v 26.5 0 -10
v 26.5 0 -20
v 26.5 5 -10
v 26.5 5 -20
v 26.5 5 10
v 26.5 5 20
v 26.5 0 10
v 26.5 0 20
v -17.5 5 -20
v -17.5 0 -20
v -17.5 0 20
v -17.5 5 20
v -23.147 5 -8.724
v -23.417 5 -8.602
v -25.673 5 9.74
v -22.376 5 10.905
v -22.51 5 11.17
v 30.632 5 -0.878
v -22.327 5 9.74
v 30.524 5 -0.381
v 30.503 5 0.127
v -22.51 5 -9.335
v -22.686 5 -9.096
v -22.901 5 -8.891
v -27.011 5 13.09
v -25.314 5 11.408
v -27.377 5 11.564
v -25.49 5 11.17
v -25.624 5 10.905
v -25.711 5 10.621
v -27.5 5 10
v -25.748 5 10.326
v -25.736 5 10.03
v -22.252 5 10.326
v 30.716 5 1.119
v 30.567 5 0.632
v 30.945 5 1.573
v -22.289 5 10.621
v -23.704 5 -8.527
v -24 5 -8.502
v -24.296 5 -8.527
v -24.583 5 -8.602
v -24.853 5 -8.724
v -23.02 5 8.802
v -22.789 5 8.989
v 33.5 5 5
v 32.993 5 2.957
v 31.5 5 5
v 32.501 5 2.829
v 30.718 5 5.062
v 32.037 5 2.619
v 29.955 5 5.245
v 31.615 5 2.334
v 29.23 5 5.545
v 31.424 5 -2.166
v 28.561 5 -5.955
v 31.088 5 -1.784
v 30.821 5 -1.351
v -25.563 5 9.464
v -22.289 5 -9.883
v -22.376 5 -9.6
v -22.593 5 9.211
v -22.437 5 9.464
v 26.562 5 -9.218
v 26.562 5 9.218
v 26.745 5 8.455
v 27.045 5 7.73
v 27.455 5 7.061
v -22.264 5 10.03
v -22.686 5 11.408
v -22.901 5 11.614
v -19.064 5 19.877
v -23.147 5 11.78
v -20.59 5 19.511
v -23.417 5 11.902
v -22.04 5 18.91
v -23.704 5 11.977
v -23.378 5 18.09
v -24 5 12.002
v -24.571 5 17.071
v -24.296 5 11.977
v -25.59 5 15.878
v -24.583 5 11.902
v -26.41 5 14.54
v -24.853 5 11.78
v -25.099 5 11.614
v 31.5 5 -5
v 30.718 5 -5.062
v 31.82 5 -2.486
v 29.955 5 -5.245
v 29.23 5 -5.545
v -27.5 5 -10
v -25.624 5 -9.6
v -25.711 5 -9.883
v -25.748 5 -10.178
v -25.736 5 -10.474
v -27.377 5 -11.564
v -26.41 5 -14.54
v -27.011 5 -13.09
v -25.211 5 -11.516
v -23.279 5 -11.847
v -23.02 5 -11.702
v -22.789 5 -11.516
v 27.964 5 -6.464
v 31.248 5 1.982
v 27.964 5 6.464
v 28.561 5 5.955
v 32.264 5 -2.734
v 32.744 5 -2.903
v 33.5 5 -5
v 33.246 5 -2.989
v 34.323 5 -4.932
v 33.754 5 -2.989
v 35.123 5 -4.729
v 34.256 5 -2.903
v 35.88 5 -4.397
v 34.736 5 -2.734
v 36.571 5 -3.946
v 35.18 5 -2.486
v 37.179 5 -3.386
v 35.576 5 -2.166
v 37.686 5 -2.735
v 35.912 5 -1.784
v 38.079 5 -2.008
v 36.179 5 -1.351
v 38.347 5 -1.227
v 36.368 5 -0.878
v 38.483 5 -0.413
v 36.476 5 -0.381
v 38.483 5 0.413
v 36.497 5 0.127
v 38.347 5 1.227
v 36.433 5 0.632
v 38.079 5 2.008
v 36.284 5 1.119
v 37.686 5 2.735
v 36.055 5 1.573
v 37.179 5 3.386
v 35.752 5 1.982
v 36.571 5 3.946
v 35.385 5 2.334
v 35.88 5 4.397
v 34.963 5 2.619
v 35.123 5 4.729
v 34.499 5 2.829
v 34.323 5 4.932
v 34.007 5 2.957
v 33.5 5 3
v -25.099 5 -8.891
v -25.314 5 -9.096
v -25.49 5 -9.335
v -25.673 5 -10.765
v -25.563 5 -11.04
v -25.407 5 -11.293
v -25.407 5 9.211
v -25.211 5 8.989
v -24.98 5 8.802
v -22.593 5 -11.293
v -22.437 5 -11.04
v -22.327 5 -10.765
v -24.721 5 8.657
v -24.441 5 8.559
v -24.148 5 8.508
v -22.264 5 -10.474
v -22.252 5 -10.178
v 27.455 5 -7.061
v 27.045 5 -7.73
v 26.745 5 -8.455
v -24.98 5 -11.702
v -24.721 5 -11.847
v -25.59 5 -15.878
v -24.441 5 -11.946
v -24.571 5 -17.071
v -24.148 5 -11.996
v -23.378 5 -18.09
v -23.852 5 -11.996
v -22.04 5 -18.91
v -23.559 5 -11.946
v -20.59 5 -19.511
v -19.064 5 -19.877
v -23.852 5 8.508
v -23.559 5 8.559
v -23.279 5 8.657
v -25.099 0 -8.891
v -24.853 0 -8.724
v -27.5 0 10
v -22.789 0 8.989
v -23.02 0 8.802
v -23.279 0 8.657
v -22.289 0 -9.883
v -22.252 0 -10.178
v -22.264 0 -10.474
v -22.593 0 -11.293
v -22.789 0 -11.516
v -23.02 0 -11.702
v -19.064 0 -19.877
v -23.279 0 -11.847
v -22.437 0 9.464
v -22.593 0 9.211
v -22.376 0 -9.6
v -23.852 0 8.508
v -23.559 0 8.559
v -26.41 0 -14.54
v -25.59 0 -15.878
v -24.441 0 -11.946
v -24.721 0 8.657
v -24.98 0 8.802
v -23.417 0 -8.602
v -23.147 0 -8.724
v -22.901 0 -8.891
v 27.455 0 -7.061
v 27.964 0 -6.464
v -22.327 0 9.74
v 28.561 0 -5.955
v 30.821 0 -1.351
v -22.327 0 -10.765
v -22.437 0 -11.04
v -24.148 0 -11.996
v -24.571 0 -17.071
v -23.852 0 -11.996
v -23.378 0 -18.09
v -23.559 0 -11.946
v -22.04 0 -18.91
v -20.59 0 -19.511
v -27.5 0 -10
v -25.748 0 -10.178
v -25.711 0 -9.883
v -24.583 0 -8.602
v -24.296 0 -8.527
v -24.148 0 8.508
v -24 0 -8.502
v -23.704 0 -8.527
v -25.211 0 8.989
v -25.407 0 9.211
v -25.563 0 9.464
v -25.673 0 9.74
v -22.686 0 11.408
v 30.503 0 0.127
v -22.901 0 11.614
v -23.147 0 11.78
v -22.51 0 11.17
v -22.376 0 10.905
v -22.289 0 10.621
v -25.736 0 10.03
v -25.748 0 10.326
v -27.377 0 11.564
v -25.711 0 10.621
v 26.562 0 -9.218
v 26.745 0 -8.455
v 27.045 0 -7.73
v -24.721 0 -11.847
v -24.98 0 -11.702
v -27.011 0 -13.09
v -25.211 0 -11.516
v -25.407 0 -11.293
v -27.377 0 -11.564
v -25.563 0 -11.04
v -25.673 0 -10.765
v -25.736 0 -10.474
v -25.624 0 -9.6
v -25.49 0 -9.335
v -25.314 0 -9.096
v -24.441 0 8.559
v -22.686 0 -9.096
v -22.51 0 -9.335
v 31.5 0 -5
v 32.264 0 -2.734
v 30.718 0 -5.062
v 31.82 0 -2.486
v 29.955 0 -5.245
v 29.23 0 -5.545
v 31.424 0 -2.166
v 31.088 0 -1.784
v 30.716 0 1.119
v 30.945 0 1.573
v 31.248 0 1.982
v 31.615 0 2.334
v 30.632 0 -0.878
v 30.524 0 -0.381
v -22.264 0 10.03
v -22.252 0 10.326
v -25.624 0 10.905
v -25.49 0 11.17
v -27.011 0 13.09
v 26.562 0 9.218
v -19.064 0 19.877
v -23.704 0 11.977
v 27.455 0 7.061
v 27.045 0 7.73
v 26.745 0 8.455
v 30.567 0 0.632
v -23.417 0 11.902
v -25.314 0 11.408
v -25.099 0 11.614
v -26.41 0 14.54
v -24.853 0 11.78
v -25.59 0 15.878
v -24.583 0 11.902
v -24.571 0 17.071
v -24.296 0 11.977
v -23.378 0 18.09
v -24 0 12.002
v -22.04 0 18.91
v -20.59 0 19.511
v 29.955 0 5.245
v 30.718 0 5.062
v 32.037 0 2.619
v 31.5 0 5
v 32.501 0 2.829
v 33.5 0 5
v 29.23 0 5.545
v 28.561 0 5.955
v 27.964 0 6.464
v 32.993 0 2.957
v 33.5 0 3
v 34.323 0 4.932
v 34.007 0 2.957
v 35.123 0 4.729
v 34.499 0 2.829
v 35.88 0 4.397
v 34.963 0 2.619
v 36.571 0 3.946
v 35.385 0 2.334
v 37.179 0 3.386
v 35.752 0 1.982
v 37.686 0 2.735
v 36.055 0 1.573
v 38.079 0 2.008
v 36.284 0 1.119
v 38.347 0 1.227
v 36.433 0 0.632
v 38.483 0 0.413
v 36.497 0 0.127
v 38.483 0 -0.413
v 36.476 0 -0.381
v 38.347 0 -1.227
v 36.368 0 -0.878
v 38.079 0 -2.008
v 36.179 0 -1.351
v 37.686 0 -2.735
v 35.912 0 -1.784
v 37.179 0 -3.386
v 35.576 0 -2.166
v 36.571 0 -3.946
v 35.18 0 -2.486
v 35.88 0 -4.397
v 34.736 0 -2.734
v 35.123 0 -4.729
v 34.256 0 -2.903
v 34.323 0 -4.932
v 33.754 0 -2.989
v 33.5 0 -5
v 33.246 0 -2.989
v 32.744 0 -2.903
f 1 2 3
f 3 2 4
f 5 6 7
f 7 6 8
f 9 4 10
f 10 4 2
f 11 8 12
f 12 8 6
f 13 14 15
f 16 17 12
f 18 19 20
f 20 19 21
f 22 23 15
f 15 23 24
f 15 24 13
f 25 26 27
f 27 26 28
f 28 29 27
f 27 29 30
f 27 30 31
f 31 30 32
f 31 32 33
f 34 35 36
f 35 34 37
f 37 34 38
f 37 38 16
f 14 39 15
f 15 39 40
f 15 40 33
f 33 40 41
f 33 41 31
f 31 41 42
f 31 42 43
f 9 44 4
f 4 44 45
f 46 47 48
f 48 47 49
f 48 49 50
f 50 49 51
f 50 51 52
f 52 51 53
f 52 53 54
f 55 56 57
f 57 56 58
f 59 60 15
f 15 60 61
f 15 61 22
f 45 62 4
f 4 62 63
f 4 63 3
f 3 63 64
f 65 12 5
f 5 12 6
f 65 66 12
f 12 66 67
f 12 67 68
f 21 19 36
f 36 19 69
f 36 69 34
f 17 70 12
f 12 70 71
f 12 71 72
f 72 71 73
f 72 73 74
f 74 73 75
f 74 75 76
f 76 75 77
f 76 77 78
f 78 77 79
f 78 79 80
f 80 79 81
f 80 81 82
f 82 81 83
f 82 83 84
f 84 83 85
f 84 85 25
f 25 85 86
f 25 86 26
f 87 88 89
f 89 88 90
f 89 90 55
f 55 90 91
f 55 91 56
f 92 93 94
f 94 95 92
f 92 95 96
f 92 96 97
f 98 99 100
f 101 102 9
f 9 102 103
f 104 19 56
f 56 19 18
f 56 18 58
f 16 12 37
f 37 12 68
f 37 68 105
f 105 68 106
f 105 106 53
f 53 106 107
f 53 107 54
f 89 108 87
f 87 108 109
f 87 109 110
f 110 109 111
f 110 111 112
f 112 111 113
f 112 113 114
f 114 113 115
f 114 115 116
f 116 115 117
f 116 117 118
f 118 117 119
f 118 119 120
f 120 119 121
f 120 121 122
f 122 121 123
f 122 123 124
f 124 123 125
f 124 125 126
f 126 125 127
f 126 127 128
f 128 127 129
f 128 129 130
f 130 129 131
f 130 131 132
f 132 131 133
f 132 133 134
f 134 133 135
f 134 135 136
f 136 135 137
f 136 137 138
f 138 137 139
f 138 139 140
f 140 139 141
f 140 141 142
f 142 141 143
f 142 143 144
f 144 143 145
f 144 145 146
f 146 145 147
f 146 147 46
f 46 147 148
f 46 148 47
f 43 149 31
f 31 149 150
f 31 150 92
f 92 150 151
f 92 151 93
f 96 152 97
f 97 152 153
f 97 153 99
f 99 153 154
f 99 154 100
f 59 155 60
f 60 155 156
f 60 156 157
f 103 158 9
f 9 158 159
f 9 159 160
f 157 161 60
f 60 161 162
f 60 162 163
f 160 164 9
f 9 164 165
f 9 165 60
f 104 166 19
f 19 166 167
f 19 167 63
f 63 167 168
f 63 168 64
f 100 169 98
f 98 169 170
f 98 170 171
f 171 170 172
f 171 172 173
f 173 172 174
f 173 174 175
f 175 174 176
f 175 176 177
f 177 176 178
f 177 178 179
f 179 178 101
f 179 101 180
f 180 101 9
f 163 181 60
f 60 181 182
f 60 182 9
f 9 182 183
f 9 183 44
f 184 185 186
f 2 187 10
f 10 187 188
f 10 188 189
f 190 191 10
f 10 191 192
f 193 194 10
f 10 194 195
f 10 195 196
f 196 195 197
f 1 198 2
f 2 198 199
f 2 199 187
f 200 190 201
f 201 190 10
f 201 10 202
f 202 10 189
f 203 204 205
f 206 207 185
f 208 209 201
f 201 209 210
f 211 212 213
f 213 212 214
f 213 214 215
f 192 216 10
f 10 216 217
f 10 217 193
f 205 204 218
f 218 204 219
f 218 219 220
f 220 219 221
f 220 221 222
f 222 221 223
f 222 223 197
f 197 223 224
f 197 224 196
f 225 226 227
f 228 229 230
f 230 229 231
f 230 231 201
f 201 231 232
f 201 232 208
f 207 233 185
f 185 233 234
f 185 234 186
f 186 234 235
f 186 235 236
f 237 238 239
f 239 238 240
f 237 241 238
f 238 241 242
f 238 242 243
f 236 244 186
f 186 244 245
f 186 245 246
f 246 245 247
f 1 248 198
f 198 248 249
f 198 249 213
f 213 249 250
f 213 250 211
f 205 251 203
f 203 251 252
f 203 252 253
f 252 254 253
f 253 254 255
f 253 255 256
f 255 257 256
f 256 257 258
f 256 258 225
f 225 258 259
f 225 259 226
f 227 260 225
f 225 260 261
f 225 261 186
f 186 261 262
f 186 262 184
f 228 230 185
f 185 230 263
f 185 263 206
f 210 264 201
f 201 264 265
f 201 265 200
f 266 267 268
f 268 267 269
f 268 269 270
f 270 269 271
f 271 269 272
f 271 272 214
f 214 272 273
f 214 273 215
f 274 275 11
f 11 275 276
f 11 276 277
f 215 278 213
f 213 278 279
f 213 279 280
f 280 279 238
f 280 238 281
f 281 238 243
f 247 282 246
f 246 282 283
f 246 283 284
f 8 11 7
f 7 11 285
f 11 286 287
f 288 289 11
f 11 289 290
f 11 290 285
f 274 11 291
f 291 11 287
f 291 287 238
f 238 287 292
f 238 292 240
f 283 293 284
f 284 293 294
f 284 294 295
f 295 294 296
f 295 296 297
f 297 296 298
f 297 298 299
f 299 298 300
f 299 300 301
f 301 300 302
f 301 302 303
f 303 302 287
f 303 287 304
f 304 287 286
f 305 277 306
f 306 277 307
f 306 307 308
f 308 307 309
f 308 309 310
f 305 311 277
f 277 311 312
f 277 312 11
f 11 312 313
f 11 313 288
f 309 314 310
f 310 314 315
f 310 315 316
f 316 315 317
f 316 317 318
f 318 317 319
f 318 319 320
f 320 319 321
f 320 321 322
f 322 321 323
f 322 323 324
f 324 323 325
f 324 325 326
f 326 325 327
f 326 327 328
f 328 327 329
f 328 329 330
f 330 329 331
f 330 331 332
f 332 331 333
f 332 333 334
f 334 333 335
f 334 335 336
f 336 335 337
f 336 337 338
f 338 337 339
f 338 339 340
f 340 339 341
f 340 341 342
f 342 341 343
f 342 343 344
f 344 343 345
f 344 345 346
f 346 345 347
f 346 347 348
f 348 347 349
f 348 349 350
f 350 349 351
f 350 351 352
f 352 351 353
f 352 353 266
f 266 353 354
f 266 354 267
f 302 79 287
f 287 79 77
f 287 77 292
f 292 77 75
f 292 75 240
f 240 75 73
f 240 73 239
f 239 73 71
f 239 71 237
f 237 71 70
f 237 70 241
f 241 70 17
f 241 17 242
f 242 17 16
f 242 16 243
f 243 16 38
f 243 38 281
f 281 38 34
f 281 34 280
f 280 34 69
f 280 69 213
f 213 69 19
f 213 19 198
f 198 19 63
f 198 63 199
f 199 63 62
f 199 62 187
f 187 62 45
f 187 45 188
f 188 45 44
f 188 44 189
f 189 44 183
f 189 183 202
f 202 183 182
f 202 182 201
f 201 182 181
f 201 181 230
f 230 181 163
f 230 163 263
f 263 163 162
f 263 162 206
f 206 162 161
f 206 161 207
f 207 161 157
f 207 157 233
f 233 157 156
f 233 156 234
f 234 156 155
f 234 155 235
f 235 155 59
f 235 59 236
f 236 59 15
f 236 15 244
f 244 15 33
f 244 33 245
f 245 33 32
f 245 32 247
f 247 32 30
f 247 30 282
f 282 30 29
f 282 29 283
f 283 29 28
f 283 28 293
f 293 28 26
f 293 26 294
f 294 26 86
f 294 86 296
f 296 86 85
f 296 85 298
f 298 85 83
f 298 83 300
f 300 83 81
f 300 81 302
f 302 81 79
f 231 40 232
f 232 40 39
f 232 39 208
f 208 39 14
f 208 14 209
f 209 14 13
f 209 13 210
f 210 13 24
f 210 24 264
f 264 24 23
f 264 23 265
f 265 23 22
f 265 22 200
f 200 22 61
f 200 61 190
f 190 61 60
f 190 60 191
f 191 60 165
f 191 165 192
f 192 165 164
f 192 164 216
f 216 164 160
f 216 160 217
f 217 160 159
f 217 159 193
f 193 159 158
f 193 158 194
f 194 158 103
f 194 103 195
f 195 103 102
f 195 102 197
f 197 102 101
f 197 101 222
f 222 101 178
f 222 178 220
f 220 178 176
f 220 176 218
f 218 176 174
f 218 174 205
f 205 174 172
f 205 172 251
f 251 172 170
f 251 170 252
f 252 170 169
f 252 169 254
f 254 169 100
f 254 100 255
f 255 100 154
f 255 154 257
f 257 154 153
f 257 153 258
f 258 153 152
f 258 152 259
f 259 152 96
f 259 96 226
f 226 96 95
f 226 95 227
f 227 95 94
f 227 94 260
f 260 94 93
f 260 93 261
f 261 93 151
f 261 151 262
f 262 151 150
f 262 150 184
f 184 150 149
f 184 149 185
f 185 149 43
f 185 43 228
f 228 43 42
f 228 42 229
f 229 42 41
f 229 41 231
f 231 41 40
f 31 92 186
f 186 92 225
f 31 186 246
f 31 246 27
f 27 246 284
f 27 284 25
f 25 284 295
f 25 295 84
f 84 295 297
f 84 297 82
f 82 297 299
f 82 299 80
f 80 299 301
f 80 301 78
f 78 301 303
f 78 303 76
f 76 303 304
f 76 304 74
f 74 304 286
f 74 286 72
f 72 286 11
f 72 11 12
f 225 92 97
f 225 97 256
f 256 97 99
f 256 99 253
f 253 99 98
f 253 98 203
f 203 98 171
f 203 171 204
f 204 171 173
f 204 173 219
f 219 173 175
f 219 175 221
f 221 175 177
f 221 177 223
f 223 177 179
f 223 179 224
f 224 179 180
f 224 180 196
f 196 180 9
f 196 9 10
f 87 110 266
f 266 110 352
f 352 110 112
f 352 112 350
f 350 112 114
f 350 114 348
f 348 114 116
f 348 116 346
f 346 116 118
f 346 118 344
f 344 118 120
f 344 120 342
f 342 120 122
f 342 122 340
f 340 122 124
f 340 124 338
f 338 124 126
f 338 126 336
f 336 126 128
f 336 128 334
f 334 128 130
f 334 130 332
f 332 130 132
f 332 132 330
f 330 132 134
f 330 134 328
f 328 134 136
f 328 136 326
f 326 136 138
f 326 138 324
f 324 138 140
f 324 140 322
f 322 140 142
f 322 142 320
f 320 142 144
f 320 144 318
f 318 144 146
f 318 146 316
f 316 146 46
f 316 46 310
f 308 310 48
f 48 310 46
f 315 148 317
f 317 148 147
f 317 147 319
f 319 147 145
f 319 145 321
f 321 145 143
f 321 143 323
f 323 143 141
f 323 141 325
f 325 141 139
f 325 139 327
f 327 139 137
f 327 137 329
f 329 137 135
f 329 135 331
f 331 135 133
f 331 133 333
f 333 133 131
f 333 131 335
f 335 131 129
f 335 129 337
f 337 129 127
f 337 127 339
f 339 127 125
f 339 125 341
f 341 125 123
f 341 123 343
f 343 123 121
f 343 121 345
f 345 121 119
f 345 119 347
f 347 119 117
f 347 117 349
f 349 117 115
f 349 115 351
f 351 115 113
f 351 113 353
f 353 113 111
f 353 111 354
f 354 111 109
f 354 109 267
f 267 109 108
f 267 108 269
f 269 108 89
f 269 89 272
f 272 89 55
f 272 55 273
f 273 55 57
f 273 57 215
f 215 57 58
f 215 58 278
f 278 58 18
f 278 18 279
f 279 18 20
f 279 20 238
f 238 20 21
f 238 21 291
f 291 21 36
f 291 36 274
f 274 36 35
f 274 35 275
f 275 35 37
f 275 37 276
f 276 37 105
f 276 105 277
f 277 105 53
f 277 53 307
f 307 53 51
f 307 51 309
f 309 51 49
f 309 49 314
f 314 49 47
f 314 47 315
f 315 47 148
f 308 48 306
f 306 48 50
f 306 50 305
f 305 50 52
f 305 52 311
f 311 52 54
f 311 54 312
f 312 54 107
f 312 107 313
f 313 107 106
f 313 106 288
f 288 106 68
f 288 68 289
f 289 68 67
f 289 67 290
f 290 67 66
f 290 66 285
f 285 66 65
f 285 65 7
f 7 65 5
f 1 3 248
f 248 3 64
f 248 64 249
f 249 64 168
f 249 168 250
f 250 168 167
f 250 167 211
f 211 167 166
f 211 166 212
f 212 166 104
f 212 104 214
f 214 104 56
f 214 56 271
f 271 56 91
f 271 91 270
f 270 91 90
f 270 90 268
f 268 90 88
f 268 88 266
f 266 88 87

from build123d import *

# Parameters (mm, degrees)
SKETCH1_W           = 53
SKETCH1_H           = 40
BOSS_EXTRUDE1_DEPTH = 5
SKETCH2_R           = 1.75
CUT_EXTRUDE1_DEPTH  = 5
SKETCH3_W           = 40
SKETCH3_H           = 5
BOSS_EXTRUDE2_DEPTH = 1
FILLET2_R           = 10
BOSS_EXTRUDE3_DEPTH = 5
SKETCH5_R           = 3
CUT_EXTRUDE2_DEPTH  = 7
FILLET3_R           = 5


with BuildPart() as part:
    # Sketch1 → Boss-Extrude1 (new body)
    with BuildSketch(Plane(origin=(0, 0, 0), x_dir=(1, 0, 0), z_dir=(0, 1, 0))):
        Rectangle(SKETCH1_W, SKETCH1_H)
    extrude(amount=BOSS_EXTRUDE1_DEPTH)

    # Sketch2 → Cut-Extrude1 (cut)
    with BuildSketch(Plane(origin=(0, 5, 0), x_dir=(1, 0, 0), z_dir=(0, 1, 0))):
        with Locations(Location((-24, 10.252098, 0), (0, 0, 270))):
            Circle(SKETCH2_R)
        with Locations(Location((-24, -10.252098, 0), (0, 0, 270))):
            Circle(SKETCH2_R)
    extrude(amount=-CUT_EXTRUDE1_DEPTH, mode=Mode.SUBTRACT)

    # Sketch3 → Boss-Extrude2 (add)
    with BuildSketch(Plane.ZY.offset(26.5)):
        with Locations((0, 2.5)):
            Rectangle(SKETCH3_W, SKETCH3_H)
    extrude(amount=BOSS_EXTRUDE2_DEPTH)

    # Fillet2
    fillet2_edges = [part.edges().sort_by_distance(p)[0] for p in [
        (-27.5, 2.5, -20),
        (-27.5, 2.5, 20),
    ]]
    fillet(fillet2_edges, radius=FILLET2_R)

    # Sketch4 → Boss-Extrude3 (add)
    with BuildSketch(Plane(origin=(0, 5, 0), x_dir=(1, 0, 0), z_dir=(0, 1, 0))):
        with BuildLine():
            Line((26.5, 5), (33.5, 5))
            ThreePointArc((33.5, 5), (38.5, 0), (33.5, -5))
            Line((33.5, -5), (26.5, -5))
            Line((26.5, -5), (26.5, 5))
        make_face()
    extrude(amount=-BOSS_EXTRUDE3_DEPTH)

    # Sketch5 → Cut-Extrude2 (cut)
    with BuildSketch(Plane(origin=(0, 5, 0), x_dir=(1, 0, 0), z_dir=(0, 1, 0))):
        with Locations(Location((33.5, 0, 0), (0, 0, 270))):
            Circle(SKETCH5_R)
    extrude(amount=-CUT_EXTRUDE2_DEPTH, mode=Mode.SUBTRACT)

    # Fillet3
    fillet3_edges = [part.edges().sort_by_distance(p)[0] for p in [
        (26.5, 2.5, 5),
        (26.5, 2.5, -5),
    ]]
    fillet(fillet3_edges, radius=FILLET3_R)


solid = part.part
